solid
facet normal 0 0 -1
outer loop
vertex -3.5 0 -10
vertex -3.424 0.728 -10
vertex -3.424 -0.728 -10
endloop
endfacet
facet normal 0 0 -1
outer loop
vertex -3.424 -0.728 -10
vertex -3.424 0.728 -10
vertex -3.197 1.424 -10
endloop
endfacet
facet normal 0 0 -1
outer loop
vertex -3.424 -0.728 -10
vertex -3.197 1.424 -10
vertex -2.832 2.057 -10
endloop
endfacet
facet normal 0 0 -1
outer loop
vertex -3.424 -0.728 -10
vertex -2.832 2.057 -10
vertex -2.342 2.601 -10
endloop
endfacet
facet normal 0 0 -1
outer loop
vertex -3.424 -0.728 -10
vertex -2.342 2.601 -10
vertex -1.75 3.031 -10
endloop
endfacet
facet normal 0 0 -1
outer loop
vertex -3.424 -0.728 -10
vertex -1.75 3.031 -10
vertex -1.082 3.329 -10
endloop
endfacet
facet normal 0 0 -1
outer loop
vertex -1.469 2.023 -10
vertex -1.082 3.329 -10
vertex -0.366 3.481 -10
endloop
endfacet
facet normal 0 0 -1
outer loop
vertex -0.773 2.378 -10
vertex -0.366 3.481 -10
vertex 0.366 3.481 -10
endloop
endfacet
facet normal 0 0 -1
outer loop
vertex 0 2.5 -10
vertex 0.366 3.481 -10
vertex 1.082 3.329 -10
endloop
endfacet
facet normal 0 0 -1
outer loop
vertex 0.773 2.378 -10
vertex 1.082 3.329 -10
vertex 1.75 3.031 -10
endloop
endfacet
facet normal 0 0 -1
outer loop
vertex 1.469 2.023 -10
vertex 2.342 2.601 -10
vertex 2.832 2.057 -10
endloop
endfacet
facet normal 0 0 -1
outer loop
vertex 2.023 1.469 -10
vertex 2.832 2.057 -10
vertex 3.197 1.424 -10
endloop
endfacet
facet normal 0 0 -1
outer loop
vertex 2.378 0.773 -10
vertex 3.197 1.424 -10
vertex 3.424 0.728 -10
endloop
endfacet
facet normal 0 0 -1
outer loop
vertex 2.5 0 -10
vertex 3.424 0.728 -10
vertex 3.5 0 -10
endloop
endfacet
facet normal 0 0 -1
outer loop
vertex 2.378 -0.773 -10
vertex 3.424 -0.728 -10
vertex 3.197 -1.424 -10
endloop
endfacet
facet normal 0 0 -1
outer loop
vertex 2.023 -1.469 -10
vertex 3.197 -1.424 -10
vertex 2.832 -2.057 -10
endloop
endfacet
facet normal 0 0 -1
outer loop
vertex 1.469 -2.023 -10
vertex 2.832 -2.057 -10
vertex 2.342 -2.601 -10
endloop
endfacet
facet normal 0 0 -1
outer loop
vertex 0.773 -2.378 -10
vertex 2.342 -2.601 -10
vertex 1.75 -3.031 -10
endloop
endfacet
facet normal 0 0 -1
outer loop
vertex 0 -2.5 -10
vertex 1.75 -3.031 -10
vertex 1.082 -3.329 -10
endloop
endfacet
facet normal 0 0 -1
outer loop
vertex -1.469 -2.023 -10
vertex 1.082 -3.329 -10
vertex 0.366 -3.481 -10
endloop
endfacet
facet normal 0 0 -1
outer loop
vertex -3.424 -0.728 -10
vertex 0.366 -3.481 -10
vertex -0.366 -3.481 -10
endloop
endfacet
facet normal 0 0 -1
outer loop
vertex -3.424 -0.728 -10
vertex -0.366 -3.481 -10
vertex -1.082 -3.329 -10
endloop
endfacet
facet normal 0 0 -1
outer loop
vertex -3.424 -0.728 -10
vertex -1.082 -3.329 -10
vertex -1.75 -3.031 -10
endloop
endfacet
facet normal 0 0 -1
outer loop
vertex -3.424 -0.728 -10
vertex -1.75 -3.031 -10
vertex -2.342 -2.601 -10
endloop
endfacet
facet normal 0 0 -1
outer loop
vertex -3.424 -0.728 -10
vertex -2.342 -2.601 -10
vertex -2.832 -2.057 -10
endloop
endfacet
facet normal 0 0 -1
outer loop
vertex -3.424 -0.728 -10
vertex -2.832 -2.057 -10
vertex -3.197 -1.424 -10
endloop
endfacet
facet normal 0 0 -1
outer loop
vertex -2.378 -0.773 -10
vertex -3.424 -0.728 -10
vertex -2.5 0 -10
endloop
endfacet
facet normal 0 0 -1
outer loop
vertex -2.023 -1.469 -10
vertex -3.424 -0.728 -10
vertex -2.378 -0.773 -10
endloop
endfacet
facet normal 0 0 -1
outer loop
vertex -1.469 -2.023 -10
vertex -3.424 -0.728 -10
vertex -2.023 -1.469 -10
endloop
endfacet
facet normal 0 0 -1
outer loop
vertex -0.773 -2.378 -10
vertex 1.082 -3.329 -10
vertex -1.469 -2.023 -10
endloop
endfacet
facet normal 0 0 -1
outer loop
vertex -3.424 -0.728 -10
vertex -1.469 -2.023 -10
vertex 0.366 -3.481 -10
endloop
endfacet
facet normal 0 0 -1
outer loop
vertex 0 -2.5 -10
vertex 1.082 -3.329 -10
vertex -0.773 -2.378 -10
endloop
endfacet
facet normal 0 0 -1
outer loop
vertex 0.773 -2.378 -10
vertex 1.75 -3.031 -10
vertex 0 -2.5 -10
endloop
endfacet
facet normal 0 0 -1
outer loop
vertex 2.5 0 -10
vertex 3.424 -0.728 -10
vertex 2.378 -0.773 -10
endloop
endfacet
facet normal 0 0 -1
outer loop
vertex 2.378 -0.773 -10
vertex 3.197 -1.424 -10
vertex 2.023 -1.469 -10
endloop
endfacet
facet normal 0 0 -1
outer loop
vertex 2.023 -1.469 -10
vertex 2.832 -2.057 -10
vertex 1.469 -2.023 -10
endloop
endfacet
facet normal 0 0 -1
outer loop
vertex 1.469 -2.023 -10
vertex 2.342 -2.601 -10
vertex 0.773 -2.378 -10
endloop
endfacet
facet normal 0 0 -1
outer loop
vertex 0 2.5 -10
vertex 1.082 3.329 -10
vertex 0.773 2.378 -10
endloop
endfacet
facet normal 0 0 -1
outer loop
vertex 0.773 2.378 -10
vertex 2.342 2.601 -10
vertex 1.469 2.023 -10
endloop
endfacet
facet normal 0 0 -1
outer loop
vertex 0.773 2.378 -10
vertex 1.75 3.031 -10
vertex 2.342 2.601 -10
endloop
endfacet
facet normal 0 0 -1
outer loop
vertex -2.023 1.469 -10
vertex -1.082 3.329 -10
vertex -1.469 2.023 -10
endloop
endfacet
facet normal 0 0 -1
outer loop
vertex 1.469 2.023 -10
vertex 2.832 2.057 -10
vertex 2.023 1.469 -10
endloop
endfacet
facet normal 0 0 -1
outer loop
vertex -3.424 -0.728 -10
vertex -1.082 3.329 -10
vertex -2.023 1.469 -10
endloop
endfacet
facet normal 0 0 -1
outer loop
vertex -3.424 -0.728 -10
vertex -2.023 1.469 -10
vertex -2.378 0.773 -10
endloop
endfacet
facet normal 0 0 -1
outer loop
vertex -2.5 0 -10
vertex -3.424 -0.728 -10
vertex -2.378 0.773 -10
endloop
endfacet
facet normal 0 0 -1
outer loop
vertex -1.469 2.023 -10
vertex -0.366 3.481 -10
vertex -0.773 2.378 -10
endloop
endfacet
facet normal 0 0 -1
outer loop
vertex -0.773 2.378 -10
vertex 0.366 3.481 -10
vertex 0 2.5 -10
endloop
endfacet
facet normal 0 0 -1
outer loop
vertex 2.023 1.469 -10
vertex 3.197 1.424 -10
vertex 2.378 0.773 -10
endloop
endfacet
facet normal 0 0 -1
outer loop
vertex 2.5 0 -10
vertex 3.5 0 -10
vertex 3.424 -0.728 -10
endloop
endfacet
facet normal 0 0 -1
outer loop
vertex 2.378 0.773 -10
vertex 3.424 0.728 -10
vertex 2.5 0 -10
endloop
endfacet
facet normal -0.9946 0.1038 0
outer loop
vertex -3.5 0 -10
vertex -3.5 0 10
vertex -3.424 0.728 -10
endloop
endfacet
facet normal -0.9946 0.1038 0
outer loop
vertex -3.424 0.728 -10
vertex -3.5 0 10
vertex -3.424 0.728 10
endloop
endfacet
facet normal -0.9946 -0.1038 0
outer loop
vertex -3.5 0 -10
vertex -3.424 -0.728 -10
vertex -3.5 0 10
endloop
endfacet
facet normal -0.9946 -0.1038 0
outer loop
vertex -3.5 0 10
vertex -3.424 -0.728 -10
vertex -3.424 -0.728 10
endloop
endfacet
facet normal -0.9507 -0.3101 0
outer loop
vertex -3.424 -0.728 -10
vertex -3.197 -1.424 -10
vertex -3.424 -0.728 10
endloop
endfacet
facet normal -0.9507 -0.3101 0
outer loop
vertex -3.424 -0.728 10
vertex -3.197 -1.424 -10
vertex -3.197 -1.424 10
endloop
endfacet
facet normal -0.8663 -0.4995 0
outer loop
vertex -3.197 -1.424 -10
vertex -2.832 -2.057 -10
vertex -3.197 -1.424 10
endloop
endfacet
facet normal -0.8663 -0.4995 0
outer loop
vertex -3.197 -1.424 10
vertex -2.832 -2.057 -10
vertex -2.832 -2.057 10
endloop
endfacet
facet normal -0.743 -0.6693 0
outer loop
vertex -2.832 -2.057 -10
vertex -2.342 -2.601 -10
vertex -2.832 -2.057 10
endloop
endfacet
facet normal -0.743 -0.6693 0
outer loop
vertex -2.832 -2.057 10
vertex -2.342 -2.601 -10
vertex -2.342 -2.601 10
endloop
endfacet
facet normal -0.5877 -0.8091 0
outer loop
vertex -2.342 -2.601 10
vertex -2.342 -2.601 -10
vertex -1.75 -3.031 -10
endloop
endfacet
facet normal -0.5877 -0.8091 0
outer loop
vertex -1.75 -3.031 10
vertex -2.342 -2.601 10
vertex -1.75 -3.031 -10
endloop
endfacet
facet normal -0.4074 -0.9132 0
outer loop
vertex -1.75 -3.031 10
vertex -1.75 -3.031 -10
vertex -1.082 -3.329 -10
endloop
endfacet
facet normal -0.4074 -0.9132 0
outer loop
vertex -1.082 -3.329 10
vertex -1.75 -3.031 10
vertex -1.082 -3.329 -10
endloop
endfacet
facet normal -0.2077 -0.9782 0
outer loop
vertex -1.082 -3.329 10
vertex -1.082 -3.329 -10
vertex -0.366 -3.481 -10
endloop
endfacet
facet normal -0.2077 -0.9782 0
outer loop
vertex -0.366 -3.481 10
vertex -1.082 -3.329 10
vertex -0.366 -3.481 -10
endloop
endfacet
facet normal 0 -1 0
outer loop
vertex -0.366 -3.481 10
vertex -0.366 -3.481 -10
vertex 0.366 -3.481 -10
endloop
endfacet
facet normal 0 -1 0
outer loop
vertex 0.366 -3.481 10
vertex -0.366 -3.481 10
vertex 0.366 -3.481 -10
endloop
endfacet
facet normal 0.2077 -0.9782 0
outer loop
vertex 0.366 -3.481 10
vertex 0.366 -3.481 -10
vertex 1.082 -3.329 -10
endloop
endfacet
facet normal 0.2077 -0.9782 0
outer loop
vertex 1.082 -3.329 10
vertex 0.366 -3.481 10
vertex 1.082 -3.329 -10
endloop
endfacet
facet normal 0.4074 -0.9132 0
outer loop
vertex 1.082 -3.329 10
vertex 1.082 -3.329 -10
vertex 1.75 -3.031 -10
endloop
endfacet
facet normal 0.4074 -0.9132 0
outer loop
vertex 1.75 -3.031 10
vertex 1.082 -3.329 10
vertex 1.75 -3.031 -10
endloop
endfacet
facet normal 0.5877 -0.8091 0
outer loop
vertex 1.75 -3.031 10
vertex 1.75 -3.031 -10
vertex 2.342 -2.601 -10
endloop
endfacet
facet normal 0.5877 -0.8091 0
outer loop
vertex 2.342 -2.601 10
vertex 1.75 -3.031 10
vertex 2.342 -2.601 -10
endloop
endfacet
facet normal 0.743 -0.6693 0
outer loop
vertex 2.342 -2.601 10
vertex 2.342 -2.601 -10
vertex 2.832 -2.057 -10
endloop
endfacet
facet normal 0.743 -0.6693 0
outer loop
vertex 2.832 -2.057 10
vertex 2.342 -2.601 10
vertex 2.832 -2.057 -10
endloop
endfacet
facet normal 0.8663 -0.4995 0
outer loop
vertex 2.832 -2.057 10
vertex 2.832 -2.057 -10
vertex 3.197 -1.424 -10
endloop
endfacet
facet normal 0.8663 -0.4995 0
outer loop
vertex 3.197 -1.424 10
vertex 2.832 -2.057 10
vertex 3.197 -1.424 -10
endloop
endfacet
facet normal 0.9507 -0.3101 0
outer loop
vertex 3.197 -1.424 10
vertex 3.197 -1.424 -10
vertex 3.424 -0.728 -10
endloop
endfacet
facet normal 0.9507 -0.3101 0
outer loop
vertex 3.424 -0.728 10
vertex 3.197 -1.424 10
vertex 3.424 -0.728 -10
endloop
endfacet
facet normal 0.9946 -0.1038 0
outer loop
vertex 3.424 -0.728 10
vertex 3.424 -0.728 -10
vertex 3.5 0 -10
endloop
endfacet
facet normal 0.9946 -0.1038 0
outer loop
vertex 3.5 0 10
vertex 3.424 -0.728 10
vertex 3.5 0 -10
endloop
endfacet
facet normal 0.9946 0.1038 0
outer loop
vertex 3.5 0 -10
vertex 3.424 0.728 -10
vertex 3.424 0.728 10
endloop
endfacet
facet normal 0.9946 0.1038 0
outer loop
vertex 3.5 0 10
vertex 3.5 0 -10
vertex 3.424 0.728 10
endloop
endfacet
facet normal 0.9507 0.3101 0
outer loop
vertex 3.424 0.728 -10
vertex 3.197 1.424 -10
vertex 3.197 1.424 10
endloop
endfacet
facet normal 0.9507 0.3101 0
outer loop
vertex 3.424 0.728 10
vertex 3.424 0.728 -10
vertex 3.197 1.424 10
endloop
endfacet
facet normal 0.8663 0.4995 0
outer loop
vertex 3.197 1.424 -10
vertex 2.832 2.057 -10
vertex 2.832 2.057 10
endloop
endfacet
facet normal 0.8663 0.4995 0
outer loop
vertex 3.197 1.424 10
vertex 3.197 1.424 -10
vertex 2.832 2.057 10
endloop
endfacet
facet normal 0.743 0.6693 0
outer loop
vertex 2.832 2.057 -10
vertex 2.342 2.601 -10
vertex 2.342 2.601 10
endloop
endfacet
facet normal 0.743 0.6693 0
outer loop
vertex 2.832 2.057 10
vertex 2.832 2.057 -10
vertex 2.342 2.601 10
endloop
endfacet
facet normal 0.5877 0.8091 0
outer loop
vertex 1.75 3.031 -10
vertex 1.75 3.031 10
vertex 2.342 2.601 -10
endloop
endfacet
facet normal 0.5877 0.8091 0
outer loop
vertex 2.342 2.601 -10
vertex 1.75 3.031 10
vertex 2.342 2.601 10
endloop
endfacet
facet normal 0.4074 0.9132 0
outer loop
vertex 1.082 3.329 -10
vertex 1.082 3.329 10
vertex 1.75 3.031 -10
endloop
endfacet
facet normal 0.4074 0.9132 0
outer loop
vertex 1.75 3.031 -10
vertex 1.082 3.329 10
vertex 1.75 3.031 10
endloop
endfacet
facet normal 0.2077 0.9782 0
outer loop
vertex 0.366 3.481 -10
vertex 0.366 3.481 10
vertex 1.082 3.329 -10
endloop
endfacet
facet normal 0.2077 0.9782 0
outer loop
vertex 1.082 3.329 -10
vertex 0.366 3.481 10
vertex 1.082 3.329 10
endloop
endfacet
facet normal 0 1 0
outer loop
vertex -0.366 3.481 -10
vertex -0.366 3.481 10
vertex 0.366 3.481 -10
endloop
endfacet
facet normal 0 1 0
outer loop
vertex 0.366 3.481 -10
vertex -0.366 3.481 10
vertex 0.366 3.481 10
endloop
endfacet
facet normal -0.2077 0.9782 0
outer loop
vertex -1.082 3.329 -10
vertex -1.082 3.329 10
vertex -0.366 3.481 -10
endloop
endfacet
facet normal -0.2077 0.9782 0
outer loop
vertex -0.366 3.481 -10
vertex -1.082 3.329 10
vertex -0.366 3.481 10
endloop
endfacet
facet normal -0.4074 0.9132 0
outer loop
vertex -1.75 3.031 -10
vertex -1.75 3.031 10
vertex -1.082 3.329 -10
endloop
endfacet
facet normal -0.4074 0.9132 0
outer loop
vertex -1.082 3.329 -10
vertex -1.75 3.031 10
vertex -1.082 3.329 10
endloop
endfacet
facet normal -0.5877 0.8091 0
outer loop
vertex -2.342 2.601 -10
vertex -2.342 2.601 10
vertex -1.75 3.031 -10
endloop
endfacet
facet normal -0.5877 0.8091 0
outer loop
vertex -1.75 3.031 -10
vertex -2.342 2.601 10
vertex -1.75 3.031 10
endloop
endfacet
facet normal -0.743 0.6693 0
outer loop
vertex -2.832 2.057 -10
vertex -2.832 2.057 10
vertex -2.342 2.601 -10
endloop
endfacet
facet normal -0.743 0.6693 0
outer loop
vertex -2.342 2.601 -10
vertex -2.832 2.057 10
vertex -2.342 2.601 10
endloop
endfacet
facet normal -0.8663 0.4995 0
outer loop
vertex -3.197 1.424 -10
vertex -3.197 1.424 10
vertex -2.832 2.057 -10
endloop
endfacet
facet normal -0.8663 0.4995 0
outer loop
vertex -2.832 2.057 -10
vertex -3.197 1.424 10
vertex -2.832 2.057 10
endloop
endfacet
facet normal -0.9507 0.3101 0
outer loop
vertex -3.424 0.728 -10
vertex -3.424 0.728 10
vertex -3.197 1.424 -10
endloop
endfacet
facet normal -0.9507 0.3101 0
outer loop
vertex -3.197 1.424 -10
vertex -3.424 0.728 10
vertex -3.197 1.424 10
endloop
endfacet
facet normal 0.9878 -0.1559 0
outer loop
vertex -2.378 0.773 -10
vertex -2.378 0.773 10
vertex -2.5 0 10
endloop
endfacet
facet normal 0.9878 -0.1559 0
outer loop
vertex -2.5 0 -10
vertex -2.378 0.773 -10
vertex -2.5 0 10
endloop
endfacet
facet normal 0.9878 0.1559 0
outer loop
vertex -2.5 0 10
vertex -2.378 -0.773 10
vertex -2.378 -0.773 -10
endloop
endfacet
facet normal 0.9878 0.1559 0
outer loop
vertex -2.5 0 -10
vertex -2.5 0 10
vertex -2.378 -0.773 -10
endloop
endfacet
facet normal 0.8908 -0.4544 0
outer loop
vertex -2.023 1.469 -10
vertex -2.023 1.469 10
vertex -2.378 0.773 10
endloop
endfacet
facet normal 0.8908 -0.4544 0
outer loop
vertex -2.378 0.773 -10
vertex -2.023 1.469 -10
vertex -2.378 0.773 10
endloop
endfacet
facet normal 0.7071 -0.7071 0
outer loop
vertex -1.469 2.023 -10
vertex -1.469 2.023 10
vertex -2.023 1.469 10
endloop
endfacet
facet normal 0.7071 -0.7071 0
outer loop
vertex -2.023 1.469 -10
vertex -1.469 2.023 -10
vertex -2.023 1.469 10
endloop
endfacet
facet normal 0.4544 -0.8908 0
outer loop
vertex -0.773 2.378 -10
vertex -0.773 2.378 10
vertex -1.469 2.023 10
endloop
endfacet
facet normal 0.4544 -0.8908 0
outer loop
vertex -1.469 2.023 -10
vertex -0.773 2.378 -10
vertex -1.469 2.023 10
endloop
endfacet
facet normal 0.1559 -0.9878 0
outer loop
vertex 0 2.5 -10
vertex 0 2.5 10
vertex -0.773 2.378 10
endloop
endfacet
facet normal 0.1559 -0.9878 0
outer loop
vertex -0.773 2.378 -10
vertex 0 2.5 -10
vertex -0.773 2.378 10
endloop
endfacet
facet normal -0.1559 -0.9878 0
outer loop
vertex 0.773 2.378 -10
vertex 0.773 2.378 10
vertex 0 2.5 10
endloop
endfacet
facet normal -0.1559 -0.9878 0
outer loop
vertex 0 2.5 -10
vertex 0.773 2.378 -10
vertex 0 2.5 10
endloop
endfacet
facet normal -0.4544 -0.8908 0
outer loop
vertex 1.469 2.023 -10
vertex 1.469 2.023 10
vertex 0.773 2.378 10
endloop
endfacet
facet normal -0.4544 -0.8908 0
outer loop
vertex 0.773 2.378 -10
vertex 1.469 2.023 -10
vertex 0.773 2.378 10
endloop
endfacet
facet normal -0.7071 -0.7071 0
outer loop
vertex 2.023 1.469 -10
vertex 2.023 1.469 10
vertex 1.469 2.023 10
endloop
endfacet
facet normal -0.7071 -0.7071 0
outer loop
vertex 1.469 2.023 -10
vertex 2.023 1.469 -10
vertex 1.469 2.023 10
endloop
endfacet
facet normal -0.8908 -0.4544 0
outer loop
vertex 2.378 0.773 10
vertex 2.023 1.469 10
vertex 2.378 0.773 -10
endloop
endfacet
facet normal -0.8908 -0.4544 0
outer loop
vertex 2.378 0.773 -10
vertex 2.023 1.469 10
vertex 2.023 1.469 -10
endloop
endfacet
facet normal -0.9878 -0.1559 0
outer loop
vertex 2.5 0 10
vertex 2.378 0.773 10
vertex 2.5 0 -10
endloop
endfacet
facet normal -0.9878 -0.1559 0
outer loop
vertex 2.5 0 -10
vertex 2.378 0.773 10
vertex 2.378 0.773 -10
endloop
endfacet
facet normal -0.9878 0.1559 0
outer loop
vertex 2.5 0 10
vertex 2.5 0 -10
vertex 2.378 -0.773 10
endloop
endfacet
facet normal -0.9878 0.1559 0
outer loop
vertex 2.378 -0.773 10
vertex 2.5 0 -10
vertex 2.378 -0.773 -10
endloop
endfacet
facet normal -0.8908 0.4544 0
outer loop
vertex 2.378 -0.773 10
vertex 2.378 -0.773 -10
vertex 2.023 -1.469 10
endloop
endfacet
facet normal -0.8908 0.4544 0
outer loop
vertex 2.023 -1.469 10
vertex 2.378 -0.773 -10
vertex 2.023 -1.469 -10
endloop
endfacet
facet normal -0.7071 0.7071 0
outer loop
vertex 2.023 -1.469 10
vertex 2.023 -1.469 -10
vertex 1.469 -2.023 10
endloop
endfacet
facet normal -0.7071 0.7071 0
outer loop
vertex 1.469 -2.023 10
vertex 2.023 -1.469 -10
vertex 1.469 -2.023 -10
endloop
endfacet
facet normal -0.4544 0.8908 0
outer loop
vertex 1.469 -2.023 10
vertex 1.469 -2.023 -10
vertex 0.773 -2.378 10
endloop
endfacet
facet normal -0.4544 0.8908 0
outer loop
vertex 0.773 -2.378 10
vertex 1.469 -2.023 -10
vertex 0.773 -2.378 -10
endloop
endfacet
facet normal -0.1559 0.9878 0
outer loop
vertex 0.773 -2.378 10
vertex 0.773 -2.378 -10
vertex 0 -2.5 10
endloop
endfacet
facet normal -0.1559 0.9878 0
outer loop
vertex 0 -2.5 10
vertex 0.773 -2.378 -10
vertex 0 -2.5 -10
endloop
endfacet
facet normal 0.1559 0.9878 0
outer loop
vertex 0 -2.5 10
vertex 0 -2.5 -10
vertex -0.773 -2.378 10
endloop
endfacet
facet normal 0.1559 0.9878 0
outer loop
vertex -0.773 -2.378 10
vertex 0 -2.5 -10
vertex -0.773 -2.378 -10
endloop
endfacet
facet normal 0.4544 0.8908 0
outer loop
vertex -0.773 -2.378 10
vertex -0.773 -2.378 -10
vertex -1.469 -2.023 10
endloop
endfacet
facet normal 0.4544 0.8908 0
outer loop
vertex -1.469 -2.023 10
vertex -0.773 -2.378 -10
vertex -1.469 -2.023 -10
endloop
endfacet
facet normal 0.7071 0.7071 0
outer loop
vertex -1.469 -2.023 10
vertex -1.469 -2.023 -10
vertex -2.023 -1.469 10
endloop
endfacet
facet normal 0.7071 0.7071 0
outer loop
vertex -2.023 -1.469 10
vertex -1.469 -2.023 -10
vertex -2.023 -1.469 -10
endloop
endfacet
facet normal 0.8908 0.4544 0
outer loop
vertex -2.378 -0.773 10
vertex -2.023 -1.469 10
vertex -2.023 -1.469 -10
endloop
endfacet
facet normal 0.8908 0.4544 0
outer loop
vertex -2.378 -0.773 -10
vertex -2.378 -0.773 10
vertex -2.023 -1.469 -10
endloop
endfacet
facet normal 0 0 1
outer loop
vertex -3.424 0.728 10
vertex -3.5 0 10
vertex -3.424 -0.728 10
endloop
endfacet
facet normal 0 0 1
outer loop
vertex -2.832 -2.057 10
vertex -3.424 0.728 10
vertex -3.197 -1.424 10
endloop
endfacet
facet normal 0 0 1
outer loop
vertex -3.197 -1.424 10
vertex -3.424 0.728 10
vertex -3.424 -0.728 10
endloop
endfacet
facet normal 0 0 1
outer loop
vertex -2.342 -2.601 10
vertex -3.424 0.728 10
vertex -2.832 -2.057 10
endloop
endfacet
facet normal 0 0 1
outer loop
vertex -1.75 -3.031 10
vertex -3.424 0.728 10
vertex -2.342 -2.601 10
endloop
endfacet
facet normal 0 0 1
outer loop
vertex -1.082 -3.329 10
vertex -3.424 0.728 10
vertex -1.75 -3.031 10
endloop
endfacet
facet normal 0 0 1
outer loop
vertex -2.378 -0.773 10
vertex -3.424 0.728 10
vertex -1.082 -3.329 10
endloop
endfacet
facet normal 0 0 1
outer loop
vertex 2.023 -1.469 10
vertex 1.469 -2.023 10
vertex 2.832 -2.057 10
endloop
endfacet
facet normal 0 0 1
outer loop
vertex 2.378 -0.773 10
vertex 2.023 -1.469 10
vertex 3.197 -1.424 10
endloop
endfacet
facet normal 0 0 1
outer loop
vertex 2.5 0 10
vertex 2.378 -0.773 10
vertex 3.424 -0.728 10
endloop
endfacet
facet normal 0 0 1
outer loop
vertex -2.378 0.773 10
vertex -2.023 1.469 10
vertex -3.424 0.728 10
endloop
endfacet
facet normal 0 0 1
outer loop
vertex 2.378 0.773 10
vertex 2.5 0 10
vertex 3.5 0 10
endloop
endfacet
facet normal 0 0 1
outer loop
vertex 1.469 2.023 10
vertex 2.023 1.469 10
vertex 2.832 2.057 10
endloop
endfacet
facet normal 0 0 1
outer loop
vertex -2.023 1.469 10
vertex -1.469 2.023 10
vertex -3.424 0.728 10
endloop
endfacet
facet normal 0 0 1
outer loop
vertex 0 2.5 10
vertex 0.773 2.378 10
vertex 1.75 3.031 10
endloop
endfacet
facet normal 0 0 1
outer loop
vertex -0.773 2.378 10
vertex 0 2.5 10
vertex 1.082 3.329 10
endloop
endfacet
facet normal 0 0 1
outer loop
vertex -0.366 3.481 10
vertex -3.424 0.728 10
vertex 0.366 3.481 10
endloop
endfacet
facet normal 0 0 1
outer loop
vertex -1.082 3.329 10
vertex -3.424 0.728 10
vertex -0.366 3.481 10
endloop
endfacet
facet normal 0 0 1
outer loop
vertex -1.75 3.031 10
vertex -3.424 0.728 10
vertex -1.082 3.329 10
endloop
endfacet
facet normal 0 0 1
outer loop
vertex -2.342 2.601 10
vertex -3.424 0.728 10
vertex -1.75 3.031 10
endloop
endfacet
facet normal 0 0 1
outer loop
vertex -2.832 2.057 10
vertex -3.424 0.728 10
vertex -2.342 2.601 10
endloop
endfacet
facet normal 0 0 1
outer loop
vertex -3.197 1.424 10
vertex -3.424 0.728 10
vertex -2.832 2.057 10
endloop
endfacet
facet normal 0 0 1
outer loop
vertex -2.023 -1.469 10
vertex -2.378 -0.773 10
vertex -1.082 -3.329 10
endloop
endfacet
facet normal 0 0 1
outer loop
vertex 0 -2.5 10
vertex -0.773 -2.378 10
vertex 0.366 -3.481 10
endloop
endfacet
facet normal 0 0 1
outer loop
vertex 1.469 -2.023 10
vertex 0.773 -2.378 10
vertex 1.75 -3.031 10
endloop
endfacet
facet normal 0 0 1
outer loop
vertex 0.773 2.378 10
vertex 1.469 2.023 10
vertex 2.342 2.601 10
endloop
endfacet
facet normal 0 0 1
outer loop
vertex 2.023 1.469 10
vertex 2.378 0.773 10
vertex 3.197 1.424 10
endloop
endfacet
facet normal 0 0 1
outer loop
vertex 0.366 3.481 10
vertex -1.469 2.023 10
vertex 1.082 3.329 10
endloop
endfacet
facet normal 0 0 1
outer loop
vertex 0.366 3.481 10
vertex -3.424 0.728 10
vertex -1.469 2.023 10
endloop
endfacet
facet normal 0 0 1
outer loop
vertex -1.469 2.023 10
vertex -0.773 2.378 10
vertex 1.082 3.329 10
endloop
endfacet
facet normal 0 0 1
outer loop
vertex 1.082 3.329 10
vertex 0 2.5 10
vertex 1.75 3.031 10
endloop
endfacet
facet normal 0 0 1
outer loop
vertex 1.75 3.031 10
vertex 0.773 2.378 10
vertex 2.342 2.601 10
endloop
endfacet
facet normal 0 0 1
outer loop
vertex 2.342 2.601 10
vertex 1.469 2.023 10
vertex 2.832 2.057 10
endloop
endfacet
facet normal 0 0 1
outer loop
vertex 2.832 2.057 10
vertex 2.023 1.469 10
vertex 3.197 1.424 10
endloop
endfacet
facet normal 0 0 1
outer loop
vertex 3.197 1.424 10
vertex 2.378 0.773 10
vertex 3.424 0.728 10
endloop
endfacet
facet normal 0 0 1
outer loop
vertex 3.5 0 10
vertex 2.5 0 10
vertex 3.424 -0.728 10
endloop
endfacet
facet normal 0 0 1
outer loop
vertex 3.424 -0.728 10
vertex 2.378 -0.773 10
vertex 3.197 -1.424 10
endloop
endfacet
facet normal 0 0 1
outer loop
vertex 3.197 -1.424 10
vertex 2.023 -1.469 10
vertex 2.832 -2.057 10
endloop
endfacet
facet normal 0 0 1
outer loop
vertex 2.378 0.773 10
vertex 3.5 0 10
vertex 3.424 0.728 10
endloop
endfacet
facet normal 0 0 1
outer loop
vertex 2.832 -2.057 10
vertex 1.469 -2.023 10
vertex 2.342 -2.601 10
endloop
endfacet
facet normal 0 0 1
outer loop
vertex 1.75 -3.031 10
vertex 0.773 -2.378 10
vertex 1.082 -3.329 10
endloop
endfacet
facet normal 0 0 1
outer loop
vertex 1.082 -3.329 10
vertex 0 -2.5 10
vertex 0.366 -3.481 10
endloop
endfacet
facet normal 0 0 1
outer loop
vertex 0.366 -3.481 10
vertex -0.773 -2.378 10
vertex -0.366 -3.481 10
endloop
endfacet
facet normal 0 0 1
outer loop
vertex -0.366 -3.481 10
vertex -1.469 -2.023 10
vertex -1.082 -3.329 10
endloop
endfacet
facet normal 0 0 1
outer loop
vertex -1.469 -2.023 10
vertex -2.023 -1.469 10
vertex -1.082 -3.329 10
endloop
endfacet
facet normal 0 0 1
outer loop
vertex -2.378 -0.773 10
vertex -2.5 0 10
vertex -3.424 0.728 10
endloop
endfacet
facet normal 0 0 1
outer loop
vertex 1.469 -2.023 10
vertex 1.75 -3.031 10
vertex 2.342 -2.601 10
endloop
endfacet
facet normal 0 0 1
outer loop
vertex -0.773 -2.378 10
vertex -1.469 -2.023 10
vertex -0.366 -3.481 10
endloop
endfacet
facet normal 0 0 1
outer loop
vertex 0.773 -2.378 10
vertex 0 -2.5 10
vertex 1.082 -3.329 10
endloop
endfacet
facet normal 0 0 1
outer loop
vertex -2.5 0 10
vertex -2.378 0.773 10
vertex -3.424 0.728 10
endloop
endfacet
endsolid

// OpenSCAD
difference() {
  cylinder(r=7/2, h=20, center=true, $fn=30);
  cylinder(r=5/2, h=30, center=true, $fn=20);
}
